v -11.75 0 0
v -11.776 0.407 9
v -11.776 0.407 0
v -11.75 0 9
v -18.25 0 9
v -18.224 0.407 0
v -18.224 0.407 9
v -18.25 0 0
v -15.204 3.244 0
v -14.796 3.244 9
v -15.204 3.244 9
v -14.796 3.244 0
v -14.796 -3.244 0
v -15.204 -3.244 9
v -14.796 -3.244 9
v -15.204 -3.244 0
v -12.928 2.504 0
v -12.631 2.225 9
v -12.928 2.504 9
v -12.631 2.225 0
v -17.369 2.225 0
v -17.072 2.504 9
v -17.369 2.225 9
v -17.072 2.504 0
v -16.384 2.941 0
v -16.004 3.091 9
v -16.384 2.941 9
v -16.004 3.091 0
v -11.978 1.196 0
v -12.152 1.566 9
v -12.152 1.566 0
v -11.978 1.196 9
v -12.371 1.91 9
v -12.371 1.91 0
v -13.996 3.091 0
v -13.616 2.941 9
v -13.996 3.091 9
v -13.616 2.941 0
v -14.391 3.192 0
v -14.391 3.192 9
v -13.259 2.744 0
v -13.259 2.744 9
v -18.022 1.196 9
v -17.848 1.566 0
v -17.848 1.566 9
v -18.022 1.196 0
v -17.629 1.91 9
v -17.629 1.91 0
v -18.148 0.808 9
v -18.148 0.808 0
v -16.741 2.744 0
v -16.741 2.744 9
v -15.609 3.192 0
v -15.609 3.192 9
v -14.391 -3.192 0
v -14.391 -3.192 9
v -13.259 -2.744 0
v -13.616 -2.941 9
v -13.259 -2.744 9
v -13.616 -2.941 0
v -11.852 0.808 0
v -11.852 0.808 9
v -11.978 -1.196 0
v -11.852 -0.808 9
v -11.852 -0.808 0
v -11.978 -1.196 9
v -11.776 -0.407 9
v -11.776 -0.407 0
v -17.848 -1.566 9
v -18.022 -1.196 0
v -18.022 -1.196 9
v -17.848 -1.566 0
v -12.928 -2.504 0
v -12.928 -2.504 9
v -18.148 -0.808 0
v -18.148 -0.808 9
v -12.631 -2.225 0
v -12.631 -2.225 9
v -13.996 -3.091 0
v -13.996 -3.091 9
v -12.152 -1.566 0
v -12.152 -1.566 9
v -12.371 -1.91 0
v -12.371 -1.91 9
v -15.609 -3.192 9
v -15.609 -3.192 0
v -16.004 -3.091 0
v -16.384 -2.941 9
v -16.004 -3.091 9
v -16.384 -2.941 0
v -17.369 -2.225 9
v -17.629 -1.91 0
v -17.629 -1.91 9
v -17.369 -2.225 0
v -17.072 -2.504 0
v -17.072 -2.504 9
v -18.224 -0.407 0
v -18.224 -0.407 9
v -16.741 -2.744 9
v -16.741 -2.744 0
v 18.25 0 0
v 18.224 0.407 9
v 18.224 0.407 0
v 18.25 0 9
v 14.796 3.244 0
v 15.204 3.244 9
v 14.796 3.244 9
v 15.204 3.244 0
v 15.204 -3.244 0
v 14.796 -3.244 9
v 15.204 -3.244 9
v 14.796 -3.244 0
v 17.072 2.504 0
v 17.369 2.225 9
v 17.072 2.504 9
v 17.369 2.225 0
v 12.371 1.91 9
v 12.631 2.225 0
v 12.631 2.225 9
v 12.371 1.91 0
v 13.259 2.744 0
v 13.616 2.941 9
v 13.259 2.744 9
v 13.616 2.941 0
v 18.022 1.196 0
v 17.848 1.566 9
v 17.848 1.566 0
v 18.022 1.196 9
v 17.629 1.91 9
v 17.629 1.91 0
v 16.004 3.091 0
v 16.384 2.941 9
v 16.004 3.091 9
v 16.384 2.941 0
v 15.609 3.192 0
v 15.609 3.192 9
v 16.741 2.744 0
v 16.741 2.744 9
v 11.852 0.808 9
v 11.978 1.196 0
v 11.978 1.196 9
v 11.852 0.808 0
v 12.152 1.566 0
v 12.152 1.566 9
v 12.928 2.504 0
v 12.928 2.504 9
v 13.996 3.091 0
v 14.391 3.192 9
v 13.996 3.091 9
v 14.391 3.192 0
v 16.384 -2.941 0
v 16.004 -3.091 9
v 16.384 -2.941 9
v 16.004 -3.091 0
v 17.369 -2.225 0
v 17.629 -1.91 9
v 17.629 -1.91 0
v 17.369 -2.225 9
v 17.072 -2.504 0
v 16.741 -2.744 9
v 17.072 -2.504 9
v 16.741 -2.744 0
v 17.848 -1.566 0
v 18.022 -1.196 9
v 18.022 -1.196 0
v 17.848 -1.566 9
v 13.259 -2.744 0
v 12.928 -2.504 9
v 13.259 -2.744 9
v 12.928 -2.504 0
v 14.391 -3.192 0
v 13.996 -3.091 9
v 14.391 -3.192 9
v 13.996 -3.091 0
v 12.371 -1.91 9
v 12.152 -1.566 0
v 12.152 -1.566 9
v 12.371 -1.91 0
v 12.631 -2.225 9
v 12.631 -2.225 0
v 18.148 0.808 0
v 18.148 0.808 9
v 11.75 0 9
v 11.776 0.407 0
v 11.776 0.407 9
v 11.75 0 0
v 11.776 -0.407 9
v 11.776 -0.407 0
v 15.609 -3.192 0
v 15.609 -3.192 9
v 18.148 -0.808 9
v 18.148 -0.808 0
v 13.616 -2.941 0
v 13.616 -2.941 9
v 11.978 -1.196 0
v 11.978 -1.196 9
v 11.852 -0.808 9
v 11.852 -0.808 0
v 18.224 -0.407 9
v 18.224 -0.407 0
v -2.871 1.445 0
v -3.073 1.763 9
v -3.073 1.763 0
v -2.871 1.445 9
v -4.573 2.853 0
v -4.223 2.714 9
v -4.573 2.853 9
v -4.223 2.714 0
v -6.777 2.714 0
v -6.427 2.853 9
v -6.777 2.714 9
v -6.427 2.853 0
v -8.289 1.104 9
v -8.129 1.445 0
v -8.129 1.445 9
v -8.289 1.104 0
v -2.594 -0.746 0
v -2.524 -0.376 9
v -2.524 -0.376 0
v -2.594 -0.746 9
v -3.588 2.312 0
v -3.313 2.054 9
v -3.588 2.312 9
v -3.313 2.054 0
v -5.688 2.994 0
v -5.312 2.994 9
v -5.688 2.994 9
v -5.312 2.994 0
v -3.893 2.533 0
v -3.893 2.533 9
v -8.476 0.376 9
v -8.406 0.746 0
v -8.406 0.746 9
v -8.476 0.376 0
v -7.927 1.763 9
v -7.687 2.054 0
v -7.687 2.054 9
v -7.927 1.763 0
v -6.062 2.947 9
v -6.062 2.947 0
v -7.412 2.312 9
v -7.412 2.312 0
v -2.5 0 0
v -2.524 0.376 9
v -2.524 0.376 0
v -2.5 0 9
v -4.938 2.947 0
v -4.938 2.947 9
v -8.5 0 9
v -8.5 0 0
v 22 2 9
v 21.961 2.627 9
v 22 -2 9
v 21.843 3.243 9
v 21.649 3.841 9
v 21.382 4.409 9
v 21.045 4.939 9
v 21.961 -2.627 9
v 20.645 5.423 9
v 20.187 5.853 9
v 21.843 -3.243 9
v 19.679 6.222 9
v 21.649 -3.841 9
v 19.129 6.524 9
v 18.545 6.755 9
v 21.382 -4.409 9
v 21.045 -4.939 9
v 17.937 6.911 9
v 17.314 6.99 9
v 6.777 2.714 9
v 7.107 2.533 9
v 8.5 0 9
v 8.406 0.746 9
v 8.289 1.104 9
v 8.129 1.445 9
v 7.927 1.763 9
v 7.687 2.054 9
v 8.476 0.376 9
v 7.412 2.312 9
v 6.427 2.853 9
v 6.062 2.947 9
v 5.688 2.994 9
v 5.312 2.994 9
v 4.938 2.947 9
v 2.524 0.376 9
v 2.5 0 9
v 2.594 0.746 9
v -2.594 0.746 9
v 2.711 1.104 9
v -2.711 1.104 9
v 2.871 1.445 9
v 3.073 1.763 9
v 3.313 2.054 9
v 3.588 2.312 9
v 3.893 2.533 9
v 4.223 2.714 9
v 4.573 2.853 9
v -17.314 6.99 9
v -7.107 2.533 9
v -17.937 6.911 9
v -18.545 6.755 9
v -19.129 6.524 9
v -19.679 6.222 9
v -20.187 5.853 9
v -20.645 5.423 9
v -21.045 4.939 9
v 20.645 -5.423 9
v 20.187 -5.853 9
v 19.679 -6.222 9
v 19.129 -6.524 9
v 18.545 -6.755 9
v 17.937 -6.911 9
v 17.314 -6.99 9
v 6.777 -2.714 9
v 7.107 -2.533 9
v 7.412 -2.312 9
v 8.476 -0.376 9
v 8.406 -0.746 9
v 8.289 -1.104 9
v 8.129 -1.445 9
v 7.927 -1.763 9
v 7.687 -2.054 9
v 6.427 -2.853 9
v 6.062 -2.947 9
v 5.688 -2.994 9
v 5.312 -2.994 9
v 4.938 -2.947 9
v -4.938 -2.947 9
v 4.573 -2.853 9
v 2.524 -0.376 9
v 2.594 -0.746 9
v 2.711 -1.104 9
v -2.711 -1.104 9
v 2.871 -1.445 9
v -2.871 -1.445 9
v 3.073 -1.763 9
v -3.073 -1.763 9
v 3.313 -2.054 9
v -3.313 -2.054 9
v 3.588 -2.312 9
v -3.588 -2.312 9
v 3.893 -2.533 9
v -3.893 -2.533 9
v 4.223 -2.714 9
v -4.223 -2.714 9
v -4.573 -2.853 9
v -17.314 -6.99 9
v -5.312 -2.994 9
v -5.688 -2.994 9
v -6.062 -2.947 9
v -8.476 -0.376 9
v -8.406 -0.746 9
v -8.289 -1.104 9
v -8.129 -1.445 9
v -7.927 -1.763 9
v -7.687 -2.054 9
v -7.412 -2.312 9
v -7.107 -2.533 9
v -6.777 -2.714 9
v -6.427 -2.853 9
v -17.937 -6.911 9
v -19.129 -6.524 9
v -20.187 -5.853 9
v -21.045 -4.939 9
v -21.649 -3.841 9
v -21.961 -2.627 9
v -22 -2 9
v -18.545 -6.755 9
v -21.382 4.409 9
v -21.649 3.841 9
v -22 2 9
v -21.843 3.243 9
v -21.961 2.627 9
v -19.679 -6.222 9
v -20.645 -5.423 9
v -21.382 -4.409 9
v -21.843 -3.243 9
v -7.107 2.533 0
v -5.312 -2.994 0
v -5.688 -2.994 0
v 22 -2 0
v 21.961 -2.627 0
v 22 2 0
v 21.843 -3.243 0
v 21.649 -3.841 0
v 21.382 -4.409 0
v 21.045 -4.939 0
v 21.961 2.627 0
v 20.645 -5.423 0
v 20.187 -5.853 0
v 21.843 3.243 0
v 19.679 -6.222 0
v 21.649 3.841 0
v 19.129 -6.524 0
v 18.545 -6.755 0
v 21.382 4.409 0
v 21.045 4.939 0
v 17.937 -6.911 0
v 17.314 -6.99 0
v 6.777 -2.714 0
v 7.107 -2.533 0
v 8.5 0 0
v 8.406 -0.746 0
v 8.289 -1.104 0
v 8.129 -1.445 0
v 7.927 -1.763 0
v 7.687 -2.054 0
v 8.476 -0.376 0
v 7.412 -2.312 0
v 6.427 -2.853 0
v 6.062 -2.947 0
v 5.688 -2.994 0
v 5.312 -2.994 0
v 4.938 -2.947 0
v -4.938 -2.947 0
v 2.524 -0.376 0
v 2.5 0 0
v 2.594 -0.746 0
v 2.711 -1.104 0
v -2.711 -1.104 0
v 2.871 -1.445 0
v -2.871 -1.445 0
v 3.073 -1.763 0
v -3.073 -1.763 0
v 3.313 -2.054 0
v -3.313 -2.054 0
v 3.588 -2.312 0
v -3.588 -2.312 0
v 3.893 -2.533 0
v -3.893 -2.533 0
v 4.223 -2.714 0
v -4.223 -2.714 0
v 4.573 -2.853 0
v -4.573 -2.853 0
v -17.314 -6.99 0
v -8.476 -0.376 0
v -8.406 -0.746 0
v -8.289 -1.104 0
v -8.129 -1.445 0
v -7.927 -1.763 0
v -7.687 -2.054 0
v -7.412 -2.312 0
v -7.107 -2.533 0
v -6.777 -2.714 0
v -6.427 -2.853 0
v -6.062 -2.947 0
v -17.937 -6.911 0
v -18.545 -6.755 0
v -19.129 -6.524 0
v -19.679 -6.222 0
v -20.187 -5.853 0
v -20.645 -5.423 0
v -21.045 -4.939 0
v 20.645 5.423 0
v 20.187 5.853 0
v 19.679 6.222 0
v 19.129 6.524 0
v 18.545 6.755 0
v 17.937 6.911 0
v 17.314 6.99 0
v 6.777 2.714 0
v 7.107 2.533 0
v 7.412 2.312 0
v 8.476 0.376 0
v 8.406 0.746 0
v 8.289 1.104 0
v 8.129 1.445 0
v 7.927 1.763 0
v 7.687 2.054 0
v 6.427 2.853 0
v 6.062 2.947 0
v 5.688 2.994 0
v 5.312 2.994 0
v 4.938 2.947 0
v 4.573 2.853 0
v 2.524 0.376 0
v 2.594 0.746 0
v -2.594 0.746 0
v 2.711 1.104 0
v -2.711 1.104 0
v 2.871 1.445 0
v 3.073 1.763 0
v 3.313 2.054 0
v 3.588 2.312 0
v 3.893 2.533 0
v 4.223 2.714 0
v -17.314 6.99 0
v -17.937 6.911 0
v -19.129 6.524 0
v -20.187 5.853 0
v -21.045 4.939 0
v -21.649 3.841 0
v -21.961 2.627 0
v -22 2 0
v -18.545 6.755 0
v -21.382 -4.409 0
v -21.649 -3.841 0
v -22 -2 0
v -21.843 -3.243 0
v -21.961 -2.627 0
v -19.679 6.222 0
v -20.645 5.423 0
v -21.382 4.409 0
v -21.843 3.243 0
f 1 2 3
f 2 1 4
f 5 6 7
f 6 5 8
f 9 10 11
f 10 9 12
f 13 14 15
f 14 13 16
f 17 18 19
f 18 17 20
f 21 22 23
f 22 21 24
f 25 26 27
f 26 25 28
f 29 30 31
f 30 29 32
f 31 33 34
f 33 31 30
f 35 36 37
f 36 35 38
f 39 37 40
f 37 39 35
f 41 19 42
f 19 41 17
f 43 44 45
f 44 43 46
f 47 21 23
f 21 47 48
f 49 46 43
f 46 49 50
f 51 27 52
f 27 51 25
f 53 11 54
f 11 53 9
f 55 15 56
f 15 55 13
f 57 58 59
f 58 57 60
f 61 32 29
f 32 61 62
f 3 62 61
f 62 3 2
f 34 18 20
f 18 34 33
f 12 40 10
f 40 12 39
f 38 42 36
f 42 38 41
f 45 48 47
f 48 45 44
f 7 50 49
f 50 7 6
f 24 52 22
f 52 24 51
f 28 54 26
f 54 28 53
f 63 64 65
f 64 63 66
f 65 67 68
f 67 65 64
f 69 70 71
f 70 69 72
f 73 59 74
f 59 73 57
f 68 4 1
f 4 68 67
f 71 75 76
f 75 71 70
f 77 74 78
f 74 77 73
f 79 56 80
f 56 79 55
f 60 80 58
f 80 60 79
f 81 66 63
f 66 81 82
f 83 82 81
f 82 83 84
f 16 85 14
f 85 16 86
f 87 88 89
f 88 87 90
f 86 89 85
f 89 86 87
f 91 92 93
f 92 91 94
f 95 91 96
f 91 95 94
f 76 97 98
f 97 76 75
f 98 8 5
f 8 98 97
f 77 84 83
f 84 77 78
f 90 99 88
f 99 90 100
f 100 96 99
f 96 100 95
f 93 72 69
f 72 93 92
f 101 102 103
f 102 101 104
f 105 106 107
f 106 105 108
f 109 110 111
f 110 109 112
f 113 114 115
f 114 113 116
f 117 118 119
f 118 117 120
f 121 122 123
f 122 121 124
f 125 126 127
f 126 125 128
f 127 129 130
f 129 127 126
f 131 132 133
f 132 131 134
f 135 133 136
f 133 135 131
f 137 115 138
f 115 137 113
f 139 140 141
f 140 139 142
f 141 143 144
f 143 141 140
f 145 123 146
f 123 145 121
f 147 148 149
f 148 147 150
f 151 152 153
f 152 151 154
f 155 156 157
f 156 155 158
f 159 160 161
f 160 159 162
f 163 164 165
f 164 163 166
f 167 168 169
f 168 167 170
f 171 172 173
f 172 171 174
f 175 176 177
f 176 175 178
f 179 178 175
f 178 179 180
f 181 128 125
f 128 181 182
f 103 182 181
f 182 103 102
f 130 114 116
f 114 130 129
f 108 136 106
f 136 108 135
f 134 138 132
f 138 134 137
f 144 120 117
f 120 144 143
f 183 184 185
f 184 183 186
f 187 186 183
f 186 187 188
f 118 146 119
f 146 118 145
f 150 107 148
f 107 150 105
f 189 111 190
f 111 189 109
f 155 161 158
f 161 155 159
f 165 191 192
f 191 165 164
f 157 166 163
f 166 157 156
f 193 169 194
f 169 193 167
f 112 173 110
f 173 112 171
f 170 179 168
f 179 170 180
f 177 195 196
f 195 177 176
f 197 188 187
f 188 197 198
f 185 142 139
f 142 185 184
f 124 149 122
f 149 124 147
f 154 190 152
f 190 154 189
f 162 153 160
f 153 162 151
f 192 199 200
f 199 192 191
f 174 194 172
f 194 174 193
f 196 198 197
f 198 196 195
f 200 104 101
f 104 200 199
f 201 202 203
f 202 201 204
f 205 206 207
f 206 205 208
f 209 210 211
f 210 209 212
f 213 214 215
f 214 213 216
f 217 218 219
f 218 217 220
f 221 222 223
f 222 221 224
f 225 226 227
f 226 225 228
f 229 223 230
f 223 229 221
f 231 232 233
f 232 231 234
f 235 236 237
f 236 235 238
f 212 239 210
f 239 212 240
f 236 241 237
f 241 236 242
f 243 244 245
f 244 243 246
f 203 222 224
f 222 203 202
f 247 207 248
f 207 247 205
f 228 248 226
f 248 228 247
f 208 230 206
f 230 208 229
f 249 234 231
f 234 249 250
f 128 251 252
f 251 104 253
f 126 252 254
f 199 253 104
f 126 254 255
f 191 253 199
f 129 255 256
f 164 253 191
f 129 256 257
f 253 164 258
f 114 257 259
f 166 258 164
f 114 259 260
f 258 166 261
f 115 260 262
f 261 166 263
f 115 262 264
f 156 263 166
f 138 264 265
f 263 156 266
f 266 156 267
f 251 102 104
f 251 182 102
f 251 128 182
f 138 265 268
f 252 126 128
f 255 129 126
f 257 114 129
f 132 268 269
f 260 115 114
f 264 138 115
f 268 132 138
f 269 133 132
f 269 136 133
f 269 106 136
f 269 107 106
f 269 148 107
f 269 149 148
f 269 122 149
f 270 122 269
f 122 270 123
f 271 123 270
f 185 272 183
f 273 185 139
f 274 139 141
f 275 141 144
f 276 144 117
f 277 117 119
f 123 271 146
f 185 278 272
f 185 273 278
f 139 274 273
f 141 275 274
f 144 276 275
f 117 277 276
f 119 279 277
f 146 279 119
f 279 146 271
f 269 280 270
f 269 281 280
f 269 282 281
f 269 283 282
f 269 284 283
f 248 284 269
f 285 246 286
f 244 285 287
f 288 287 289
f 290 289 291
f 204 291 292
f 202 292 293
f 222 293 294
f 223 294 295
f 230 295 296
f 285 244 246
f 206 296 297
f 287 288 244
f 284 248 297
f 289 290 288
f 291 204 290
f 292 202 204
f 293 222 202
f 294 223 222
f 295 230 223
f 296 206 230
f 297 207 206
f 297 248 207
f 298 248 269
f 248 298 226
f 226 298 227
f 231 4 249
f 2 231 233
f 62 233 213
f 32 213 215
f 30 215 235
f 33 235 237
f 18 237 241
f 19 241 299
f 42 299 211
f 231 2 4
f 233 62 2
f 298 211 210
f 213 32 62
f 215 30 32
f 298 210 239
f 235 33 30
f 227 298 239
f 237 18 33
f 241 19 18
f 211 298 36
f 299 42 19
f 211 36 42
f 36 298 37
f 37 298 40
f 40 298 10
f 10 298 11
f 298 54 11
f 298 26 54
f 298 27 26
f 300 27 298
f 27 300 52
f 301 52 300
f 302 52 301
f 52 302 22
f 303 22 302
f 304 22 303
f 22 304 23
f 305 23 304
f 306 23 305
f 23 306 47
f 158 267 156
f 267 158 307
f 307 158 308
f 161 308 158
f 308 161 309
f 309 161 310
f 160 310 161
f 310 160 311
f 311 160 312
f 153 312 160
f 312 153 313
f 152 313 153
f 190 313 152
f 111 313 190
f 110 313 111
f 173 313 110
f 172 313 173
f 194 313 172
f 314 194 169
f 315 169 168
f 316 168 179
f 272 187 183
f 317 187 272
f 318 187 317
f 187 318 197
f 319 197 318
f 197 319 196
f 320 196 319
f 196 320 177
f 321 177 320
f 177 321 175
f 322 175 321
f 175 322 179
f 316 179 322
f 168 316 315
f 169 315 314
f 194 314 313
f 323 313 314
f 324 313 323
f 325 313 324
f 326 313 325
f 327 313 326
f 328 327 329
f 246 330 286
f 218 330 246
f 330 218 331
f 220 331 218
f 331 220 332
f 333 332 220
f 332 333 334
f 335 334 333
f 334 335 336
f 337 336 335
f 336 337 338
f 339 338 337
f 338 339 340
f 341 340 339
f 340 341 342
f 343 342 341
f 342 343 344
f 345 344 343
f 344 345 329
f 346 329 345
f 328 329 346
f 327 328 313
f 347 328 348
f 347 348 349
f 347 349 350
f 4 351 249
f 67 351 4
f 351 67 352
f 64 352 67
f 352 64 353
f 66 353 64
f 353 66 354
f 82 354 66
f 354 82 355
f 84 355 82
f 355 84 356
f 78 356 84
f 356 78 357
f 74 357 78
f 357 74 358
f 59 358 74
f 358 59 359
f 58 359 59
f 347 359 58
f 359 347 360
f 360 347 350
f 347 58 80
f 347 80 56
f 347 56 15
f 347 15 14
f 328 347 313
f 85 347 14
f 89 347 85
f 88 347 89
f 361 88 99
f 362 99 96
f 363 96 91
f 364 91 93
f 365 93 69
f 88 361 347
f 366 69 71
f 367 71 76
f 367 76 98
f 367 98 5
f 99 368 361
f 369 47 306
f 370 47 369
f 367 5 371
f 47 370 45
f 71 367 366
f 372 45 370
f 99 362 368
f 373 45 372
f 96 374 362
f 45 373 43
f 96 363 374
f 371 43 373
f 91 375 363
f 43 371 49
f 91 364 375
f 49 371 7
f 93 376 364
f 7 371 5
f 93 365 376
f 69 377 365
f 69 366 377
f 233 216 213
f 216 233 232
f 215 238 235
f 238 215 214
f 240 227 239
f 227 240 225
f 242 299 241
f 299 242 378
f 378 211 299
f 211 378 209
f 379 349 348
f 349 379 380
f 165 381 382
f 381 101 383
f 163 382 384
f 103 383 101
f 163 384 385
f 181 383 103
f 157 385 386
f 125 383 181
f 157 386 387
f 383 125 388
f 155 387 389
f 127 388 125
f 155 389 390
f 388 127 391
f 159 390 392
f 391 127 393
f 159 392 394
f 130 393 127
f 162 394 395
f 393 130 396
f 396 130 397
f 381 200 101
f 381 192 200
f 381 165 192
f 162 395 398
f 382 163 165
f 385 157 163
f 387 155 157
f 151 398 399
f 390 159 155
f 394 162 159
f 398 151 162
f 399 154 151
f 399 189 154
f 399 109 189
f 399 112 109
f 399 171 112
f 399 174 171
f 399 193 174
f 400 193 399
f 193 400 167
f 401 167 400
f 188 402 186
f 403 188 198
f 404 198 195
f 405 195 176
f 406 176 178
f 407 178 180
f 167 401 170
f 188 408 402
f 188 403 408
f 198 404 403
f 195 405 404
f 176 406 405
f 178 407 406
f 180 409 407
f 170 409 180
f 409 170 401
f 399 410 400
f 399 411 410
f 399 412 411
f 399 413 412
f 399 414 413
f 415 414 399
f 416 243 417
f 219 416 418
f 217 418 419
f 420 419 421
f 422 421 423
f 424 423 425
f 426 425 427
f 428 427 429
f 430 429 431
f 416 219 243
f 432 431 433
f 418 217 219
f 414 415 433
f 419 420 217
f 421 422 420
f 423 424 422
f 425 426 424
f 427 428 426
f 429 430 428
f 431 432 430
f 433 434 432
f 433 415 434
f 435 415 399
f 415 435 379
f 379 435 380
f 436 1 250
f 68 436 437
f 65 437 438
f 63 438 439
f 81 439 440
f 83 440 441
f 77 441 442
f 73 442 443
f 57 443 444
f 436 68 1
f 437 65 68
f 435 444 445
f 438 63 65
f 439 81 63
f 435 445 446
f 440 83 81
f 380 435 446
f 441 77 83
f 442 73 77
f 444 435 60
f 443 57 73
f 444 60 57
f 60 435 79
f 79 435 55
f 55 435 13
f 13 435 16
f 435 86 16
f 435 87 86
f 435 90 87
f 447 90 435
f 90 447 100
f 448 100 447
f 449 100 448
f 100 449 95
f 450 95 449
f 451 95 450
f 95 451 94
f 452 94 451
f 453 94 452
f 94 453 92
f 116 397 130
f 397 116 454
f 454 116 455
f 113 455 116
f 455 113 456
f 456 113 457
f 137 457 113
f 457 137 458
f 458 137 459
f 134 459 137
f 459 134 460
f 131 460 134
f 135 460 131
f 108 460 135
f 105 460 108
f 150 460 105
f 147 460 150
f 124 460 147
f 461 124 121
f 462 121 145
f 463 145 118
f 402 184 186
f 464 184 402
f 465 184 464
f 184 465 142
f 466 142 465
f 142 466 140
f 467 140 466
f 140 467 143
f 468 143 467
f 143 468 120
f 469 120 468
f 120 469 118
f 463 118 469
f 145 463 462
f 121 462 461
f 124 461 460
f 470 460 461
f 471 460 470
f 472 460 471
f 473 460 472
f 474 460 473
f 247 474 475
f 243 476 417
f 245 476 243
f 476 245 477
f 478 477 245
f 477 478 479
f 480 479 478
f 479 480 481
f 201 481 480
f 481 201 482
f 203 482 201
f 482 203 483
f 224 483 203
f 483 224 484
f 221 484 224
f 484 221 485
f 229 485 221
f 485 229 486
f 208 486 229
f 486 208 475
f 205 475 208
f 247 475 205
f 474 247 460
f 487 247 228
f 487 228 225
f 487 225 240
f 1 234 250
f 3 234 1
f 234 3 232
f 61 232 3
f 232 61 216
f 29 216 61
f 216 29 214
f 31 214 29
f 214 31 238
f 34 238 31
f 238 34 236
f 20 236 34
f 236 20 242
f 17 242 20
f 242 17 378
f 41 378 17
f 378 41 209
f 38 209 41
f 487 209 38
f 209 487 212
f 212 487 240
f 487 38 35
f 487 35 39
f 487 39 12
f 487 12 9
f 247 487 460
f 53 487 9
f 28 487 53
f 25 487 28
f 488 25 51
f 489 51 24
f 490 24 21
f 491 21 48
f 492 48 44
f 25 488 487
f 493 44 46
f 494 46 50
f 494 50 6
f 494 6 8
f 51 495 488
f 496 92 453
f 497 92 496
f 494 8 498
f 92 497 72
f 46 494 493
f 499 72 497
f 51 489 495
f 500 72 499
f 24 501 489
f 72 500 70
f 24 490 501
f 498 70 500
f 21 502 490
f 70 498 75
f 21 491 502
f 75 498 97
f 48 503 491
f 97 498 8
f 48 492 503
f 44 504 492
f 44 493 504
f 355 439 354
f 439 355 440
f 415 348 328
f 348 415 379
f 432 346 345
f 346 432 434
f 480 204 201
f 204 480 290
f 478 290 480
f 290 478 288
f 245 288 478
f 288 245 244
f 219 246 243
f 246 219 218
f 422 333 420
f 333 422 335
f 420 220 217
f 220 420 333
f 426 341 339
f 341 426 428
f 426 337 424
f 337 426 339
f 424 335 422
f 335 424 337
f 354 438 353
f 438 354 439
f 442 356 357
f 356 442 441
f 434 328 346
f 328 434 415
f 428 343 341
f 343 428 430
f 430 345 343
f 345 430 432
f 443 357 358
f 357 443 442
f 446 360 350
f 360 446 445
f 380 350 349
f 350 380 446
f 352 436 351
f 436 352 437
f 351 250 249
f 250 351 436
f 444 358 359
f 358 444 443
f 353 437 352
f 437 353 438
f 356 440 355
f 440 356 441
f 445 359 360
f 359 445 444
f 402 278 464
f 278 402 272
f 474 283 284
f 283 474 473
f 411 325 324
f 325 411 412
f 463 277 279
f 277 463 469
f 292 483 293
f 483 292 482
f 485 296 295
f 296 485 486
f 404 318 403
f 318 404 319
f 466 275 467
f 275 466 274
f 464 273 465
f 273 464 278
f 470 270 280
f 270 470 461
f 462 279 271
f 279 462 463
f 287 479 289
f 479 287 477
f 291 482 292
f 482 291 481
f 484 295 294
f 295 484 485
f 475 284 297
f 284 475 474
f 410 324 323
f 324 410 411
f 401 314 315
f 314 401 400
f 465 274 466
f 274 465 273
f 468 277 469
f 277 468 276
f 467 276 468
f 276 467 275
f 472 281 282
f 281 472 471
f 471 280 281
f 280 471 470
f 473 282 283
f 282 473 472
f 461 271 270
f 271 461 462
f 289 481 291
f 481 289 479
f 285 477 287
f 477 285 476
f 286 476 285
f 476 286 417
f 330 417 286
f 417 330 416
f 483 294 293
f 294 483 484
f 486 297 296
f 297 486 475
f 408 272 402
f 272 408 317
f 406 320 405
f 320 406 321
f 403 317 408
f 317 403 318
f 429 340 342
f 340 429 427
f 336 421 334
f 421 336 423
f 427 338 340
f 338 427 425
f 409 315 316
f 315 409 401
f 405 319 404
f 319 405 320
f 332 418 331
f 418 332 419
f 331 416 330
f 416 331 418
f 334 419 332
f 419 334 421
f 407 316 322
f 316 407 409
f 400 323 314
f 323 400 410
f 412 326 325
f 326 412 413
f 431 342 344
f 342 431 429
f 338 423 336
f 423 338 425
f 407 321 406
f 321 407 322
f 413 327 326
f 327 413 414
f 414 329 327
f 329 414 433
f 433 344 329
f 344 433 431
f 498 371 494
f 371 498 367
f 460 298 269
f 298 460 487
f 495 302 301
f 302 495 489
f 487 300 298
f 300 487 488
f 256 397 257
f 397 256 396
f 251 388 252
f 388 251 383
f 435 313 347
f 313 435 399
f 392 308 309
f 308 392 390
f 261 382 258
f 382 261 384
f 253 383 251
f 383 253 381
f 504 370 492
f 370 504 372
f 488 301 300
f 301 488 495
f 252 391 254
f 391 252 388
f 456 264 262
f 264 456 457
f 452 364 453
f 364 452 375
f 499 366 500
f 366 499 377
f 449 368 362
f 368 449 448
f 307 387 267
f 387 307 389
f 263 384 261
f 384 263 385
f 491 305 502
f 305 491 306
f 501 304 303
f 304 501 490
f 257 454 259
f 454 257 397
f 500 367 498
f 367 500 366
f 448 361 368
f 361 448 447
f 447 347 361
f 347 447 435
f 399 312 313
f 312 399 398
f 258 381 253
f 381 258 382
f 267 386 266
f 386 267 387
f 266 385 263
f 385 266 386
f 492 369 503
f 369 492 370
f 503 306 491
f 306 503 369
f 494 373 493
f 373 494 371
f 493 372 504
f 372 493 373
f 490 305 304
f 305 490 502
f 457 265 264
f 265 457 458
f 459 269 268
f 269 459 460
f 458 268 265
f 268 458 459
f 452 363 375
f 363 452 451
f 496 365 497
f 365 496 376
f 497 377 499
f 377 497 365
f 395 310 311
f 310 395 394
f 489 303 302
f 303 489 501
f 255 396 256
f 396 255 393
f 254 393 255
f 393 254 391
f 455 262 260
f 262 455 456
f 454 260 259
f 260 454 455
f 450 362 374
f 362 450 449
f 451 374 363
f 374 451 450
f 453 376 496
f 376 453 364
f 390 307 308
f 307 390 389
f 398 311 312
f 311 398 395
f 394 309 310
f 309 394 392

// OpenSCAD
$fn = 50;


difference() {
	union() {
		hull() {
			translate(v = [-17.0000000000, 2.0000000000, 0]) {
				cylinder(h = 9, r = 5);
			}
			translate(v = [17.0000000000, 2.0000000000, 0]) {
				cylinder(h = 9, r = 5);
			}
			translate(v = [-17.0000000000, -2.0000000000, 0]) {
				cylinder(h = 9, r = 5);
			}
			translate(v = [17.0000000000, -2.0000000000, 0]) {
				cylinder(h = 9, r = 5);
			}
		}
	}
	union() {
		#translate(v = [-15.0000000000, 0.0000000000, 0]) {
			cylinder(h = 9, r = 3.2500000000);
		}
		#translate(v = [15.0000000000, 0.0000000000, 0]) {
			cylinder(h = 9, r = 3.2500000000);
		}
		#translate(v = [-15.0000000000, 0.0000000000, -100.0000000000]) {
			cylinder(h = 200, r = 3.2500000000);
		}
		#translate(v = [-15.0000000000, 0.0000000000, -100.0000000000]) {
			cylinder(h = 200, r = 3.2500000000);
		}
		#translate(v = [15.0000000000, 0.0000000000, -100.0000000000]) {
			cylinder(h = 200, r = 3.2500000000);
		}
		#translate(v = [15.0000000000, 0.0000000000, -100.0000000000]) {
			cylinder(h = 200, r = 3.2500000000);
		}
		#translate(v = [-15.0000000000, 0.0000000000, 0]) {
			cylinder(h = 9, r = 1.8000000000);
		}
		#translate(v = [15.0000000000, 0.0000000000, 0]) {
			cylinder(h = 9, r = 1.8000000000);
		}
		#translate(v = [-15.0000000000, 0.0000000000, 0]) {
			cylinder(h = 9, r = 1.8000000000);
		}
		#translate(v = [15.0000000000, 0.0000000000, 0]) {
			cylinder(h = 9, r = 1.8000000000);
		}
		#translate(v = [-15.0000000000, 0.0000000000, 0]) {
			cylinder(h = 9, r = 1.8000000000);
		}
		#translate(v = [15.0000000000, 0.0000000000, 0]) {
			cylinder(h = 9, r = 1.8000000000);
		}
		#translate(v = [-5.5000000000, 0, 0]) {
			cylinder(h = 9, r = 3.0000000000);
		}
		#translate(v = [5.5000000000, 0, 0]) {
			cylinder(h = 9, r = 3.0000000000);
		}
	}
}
